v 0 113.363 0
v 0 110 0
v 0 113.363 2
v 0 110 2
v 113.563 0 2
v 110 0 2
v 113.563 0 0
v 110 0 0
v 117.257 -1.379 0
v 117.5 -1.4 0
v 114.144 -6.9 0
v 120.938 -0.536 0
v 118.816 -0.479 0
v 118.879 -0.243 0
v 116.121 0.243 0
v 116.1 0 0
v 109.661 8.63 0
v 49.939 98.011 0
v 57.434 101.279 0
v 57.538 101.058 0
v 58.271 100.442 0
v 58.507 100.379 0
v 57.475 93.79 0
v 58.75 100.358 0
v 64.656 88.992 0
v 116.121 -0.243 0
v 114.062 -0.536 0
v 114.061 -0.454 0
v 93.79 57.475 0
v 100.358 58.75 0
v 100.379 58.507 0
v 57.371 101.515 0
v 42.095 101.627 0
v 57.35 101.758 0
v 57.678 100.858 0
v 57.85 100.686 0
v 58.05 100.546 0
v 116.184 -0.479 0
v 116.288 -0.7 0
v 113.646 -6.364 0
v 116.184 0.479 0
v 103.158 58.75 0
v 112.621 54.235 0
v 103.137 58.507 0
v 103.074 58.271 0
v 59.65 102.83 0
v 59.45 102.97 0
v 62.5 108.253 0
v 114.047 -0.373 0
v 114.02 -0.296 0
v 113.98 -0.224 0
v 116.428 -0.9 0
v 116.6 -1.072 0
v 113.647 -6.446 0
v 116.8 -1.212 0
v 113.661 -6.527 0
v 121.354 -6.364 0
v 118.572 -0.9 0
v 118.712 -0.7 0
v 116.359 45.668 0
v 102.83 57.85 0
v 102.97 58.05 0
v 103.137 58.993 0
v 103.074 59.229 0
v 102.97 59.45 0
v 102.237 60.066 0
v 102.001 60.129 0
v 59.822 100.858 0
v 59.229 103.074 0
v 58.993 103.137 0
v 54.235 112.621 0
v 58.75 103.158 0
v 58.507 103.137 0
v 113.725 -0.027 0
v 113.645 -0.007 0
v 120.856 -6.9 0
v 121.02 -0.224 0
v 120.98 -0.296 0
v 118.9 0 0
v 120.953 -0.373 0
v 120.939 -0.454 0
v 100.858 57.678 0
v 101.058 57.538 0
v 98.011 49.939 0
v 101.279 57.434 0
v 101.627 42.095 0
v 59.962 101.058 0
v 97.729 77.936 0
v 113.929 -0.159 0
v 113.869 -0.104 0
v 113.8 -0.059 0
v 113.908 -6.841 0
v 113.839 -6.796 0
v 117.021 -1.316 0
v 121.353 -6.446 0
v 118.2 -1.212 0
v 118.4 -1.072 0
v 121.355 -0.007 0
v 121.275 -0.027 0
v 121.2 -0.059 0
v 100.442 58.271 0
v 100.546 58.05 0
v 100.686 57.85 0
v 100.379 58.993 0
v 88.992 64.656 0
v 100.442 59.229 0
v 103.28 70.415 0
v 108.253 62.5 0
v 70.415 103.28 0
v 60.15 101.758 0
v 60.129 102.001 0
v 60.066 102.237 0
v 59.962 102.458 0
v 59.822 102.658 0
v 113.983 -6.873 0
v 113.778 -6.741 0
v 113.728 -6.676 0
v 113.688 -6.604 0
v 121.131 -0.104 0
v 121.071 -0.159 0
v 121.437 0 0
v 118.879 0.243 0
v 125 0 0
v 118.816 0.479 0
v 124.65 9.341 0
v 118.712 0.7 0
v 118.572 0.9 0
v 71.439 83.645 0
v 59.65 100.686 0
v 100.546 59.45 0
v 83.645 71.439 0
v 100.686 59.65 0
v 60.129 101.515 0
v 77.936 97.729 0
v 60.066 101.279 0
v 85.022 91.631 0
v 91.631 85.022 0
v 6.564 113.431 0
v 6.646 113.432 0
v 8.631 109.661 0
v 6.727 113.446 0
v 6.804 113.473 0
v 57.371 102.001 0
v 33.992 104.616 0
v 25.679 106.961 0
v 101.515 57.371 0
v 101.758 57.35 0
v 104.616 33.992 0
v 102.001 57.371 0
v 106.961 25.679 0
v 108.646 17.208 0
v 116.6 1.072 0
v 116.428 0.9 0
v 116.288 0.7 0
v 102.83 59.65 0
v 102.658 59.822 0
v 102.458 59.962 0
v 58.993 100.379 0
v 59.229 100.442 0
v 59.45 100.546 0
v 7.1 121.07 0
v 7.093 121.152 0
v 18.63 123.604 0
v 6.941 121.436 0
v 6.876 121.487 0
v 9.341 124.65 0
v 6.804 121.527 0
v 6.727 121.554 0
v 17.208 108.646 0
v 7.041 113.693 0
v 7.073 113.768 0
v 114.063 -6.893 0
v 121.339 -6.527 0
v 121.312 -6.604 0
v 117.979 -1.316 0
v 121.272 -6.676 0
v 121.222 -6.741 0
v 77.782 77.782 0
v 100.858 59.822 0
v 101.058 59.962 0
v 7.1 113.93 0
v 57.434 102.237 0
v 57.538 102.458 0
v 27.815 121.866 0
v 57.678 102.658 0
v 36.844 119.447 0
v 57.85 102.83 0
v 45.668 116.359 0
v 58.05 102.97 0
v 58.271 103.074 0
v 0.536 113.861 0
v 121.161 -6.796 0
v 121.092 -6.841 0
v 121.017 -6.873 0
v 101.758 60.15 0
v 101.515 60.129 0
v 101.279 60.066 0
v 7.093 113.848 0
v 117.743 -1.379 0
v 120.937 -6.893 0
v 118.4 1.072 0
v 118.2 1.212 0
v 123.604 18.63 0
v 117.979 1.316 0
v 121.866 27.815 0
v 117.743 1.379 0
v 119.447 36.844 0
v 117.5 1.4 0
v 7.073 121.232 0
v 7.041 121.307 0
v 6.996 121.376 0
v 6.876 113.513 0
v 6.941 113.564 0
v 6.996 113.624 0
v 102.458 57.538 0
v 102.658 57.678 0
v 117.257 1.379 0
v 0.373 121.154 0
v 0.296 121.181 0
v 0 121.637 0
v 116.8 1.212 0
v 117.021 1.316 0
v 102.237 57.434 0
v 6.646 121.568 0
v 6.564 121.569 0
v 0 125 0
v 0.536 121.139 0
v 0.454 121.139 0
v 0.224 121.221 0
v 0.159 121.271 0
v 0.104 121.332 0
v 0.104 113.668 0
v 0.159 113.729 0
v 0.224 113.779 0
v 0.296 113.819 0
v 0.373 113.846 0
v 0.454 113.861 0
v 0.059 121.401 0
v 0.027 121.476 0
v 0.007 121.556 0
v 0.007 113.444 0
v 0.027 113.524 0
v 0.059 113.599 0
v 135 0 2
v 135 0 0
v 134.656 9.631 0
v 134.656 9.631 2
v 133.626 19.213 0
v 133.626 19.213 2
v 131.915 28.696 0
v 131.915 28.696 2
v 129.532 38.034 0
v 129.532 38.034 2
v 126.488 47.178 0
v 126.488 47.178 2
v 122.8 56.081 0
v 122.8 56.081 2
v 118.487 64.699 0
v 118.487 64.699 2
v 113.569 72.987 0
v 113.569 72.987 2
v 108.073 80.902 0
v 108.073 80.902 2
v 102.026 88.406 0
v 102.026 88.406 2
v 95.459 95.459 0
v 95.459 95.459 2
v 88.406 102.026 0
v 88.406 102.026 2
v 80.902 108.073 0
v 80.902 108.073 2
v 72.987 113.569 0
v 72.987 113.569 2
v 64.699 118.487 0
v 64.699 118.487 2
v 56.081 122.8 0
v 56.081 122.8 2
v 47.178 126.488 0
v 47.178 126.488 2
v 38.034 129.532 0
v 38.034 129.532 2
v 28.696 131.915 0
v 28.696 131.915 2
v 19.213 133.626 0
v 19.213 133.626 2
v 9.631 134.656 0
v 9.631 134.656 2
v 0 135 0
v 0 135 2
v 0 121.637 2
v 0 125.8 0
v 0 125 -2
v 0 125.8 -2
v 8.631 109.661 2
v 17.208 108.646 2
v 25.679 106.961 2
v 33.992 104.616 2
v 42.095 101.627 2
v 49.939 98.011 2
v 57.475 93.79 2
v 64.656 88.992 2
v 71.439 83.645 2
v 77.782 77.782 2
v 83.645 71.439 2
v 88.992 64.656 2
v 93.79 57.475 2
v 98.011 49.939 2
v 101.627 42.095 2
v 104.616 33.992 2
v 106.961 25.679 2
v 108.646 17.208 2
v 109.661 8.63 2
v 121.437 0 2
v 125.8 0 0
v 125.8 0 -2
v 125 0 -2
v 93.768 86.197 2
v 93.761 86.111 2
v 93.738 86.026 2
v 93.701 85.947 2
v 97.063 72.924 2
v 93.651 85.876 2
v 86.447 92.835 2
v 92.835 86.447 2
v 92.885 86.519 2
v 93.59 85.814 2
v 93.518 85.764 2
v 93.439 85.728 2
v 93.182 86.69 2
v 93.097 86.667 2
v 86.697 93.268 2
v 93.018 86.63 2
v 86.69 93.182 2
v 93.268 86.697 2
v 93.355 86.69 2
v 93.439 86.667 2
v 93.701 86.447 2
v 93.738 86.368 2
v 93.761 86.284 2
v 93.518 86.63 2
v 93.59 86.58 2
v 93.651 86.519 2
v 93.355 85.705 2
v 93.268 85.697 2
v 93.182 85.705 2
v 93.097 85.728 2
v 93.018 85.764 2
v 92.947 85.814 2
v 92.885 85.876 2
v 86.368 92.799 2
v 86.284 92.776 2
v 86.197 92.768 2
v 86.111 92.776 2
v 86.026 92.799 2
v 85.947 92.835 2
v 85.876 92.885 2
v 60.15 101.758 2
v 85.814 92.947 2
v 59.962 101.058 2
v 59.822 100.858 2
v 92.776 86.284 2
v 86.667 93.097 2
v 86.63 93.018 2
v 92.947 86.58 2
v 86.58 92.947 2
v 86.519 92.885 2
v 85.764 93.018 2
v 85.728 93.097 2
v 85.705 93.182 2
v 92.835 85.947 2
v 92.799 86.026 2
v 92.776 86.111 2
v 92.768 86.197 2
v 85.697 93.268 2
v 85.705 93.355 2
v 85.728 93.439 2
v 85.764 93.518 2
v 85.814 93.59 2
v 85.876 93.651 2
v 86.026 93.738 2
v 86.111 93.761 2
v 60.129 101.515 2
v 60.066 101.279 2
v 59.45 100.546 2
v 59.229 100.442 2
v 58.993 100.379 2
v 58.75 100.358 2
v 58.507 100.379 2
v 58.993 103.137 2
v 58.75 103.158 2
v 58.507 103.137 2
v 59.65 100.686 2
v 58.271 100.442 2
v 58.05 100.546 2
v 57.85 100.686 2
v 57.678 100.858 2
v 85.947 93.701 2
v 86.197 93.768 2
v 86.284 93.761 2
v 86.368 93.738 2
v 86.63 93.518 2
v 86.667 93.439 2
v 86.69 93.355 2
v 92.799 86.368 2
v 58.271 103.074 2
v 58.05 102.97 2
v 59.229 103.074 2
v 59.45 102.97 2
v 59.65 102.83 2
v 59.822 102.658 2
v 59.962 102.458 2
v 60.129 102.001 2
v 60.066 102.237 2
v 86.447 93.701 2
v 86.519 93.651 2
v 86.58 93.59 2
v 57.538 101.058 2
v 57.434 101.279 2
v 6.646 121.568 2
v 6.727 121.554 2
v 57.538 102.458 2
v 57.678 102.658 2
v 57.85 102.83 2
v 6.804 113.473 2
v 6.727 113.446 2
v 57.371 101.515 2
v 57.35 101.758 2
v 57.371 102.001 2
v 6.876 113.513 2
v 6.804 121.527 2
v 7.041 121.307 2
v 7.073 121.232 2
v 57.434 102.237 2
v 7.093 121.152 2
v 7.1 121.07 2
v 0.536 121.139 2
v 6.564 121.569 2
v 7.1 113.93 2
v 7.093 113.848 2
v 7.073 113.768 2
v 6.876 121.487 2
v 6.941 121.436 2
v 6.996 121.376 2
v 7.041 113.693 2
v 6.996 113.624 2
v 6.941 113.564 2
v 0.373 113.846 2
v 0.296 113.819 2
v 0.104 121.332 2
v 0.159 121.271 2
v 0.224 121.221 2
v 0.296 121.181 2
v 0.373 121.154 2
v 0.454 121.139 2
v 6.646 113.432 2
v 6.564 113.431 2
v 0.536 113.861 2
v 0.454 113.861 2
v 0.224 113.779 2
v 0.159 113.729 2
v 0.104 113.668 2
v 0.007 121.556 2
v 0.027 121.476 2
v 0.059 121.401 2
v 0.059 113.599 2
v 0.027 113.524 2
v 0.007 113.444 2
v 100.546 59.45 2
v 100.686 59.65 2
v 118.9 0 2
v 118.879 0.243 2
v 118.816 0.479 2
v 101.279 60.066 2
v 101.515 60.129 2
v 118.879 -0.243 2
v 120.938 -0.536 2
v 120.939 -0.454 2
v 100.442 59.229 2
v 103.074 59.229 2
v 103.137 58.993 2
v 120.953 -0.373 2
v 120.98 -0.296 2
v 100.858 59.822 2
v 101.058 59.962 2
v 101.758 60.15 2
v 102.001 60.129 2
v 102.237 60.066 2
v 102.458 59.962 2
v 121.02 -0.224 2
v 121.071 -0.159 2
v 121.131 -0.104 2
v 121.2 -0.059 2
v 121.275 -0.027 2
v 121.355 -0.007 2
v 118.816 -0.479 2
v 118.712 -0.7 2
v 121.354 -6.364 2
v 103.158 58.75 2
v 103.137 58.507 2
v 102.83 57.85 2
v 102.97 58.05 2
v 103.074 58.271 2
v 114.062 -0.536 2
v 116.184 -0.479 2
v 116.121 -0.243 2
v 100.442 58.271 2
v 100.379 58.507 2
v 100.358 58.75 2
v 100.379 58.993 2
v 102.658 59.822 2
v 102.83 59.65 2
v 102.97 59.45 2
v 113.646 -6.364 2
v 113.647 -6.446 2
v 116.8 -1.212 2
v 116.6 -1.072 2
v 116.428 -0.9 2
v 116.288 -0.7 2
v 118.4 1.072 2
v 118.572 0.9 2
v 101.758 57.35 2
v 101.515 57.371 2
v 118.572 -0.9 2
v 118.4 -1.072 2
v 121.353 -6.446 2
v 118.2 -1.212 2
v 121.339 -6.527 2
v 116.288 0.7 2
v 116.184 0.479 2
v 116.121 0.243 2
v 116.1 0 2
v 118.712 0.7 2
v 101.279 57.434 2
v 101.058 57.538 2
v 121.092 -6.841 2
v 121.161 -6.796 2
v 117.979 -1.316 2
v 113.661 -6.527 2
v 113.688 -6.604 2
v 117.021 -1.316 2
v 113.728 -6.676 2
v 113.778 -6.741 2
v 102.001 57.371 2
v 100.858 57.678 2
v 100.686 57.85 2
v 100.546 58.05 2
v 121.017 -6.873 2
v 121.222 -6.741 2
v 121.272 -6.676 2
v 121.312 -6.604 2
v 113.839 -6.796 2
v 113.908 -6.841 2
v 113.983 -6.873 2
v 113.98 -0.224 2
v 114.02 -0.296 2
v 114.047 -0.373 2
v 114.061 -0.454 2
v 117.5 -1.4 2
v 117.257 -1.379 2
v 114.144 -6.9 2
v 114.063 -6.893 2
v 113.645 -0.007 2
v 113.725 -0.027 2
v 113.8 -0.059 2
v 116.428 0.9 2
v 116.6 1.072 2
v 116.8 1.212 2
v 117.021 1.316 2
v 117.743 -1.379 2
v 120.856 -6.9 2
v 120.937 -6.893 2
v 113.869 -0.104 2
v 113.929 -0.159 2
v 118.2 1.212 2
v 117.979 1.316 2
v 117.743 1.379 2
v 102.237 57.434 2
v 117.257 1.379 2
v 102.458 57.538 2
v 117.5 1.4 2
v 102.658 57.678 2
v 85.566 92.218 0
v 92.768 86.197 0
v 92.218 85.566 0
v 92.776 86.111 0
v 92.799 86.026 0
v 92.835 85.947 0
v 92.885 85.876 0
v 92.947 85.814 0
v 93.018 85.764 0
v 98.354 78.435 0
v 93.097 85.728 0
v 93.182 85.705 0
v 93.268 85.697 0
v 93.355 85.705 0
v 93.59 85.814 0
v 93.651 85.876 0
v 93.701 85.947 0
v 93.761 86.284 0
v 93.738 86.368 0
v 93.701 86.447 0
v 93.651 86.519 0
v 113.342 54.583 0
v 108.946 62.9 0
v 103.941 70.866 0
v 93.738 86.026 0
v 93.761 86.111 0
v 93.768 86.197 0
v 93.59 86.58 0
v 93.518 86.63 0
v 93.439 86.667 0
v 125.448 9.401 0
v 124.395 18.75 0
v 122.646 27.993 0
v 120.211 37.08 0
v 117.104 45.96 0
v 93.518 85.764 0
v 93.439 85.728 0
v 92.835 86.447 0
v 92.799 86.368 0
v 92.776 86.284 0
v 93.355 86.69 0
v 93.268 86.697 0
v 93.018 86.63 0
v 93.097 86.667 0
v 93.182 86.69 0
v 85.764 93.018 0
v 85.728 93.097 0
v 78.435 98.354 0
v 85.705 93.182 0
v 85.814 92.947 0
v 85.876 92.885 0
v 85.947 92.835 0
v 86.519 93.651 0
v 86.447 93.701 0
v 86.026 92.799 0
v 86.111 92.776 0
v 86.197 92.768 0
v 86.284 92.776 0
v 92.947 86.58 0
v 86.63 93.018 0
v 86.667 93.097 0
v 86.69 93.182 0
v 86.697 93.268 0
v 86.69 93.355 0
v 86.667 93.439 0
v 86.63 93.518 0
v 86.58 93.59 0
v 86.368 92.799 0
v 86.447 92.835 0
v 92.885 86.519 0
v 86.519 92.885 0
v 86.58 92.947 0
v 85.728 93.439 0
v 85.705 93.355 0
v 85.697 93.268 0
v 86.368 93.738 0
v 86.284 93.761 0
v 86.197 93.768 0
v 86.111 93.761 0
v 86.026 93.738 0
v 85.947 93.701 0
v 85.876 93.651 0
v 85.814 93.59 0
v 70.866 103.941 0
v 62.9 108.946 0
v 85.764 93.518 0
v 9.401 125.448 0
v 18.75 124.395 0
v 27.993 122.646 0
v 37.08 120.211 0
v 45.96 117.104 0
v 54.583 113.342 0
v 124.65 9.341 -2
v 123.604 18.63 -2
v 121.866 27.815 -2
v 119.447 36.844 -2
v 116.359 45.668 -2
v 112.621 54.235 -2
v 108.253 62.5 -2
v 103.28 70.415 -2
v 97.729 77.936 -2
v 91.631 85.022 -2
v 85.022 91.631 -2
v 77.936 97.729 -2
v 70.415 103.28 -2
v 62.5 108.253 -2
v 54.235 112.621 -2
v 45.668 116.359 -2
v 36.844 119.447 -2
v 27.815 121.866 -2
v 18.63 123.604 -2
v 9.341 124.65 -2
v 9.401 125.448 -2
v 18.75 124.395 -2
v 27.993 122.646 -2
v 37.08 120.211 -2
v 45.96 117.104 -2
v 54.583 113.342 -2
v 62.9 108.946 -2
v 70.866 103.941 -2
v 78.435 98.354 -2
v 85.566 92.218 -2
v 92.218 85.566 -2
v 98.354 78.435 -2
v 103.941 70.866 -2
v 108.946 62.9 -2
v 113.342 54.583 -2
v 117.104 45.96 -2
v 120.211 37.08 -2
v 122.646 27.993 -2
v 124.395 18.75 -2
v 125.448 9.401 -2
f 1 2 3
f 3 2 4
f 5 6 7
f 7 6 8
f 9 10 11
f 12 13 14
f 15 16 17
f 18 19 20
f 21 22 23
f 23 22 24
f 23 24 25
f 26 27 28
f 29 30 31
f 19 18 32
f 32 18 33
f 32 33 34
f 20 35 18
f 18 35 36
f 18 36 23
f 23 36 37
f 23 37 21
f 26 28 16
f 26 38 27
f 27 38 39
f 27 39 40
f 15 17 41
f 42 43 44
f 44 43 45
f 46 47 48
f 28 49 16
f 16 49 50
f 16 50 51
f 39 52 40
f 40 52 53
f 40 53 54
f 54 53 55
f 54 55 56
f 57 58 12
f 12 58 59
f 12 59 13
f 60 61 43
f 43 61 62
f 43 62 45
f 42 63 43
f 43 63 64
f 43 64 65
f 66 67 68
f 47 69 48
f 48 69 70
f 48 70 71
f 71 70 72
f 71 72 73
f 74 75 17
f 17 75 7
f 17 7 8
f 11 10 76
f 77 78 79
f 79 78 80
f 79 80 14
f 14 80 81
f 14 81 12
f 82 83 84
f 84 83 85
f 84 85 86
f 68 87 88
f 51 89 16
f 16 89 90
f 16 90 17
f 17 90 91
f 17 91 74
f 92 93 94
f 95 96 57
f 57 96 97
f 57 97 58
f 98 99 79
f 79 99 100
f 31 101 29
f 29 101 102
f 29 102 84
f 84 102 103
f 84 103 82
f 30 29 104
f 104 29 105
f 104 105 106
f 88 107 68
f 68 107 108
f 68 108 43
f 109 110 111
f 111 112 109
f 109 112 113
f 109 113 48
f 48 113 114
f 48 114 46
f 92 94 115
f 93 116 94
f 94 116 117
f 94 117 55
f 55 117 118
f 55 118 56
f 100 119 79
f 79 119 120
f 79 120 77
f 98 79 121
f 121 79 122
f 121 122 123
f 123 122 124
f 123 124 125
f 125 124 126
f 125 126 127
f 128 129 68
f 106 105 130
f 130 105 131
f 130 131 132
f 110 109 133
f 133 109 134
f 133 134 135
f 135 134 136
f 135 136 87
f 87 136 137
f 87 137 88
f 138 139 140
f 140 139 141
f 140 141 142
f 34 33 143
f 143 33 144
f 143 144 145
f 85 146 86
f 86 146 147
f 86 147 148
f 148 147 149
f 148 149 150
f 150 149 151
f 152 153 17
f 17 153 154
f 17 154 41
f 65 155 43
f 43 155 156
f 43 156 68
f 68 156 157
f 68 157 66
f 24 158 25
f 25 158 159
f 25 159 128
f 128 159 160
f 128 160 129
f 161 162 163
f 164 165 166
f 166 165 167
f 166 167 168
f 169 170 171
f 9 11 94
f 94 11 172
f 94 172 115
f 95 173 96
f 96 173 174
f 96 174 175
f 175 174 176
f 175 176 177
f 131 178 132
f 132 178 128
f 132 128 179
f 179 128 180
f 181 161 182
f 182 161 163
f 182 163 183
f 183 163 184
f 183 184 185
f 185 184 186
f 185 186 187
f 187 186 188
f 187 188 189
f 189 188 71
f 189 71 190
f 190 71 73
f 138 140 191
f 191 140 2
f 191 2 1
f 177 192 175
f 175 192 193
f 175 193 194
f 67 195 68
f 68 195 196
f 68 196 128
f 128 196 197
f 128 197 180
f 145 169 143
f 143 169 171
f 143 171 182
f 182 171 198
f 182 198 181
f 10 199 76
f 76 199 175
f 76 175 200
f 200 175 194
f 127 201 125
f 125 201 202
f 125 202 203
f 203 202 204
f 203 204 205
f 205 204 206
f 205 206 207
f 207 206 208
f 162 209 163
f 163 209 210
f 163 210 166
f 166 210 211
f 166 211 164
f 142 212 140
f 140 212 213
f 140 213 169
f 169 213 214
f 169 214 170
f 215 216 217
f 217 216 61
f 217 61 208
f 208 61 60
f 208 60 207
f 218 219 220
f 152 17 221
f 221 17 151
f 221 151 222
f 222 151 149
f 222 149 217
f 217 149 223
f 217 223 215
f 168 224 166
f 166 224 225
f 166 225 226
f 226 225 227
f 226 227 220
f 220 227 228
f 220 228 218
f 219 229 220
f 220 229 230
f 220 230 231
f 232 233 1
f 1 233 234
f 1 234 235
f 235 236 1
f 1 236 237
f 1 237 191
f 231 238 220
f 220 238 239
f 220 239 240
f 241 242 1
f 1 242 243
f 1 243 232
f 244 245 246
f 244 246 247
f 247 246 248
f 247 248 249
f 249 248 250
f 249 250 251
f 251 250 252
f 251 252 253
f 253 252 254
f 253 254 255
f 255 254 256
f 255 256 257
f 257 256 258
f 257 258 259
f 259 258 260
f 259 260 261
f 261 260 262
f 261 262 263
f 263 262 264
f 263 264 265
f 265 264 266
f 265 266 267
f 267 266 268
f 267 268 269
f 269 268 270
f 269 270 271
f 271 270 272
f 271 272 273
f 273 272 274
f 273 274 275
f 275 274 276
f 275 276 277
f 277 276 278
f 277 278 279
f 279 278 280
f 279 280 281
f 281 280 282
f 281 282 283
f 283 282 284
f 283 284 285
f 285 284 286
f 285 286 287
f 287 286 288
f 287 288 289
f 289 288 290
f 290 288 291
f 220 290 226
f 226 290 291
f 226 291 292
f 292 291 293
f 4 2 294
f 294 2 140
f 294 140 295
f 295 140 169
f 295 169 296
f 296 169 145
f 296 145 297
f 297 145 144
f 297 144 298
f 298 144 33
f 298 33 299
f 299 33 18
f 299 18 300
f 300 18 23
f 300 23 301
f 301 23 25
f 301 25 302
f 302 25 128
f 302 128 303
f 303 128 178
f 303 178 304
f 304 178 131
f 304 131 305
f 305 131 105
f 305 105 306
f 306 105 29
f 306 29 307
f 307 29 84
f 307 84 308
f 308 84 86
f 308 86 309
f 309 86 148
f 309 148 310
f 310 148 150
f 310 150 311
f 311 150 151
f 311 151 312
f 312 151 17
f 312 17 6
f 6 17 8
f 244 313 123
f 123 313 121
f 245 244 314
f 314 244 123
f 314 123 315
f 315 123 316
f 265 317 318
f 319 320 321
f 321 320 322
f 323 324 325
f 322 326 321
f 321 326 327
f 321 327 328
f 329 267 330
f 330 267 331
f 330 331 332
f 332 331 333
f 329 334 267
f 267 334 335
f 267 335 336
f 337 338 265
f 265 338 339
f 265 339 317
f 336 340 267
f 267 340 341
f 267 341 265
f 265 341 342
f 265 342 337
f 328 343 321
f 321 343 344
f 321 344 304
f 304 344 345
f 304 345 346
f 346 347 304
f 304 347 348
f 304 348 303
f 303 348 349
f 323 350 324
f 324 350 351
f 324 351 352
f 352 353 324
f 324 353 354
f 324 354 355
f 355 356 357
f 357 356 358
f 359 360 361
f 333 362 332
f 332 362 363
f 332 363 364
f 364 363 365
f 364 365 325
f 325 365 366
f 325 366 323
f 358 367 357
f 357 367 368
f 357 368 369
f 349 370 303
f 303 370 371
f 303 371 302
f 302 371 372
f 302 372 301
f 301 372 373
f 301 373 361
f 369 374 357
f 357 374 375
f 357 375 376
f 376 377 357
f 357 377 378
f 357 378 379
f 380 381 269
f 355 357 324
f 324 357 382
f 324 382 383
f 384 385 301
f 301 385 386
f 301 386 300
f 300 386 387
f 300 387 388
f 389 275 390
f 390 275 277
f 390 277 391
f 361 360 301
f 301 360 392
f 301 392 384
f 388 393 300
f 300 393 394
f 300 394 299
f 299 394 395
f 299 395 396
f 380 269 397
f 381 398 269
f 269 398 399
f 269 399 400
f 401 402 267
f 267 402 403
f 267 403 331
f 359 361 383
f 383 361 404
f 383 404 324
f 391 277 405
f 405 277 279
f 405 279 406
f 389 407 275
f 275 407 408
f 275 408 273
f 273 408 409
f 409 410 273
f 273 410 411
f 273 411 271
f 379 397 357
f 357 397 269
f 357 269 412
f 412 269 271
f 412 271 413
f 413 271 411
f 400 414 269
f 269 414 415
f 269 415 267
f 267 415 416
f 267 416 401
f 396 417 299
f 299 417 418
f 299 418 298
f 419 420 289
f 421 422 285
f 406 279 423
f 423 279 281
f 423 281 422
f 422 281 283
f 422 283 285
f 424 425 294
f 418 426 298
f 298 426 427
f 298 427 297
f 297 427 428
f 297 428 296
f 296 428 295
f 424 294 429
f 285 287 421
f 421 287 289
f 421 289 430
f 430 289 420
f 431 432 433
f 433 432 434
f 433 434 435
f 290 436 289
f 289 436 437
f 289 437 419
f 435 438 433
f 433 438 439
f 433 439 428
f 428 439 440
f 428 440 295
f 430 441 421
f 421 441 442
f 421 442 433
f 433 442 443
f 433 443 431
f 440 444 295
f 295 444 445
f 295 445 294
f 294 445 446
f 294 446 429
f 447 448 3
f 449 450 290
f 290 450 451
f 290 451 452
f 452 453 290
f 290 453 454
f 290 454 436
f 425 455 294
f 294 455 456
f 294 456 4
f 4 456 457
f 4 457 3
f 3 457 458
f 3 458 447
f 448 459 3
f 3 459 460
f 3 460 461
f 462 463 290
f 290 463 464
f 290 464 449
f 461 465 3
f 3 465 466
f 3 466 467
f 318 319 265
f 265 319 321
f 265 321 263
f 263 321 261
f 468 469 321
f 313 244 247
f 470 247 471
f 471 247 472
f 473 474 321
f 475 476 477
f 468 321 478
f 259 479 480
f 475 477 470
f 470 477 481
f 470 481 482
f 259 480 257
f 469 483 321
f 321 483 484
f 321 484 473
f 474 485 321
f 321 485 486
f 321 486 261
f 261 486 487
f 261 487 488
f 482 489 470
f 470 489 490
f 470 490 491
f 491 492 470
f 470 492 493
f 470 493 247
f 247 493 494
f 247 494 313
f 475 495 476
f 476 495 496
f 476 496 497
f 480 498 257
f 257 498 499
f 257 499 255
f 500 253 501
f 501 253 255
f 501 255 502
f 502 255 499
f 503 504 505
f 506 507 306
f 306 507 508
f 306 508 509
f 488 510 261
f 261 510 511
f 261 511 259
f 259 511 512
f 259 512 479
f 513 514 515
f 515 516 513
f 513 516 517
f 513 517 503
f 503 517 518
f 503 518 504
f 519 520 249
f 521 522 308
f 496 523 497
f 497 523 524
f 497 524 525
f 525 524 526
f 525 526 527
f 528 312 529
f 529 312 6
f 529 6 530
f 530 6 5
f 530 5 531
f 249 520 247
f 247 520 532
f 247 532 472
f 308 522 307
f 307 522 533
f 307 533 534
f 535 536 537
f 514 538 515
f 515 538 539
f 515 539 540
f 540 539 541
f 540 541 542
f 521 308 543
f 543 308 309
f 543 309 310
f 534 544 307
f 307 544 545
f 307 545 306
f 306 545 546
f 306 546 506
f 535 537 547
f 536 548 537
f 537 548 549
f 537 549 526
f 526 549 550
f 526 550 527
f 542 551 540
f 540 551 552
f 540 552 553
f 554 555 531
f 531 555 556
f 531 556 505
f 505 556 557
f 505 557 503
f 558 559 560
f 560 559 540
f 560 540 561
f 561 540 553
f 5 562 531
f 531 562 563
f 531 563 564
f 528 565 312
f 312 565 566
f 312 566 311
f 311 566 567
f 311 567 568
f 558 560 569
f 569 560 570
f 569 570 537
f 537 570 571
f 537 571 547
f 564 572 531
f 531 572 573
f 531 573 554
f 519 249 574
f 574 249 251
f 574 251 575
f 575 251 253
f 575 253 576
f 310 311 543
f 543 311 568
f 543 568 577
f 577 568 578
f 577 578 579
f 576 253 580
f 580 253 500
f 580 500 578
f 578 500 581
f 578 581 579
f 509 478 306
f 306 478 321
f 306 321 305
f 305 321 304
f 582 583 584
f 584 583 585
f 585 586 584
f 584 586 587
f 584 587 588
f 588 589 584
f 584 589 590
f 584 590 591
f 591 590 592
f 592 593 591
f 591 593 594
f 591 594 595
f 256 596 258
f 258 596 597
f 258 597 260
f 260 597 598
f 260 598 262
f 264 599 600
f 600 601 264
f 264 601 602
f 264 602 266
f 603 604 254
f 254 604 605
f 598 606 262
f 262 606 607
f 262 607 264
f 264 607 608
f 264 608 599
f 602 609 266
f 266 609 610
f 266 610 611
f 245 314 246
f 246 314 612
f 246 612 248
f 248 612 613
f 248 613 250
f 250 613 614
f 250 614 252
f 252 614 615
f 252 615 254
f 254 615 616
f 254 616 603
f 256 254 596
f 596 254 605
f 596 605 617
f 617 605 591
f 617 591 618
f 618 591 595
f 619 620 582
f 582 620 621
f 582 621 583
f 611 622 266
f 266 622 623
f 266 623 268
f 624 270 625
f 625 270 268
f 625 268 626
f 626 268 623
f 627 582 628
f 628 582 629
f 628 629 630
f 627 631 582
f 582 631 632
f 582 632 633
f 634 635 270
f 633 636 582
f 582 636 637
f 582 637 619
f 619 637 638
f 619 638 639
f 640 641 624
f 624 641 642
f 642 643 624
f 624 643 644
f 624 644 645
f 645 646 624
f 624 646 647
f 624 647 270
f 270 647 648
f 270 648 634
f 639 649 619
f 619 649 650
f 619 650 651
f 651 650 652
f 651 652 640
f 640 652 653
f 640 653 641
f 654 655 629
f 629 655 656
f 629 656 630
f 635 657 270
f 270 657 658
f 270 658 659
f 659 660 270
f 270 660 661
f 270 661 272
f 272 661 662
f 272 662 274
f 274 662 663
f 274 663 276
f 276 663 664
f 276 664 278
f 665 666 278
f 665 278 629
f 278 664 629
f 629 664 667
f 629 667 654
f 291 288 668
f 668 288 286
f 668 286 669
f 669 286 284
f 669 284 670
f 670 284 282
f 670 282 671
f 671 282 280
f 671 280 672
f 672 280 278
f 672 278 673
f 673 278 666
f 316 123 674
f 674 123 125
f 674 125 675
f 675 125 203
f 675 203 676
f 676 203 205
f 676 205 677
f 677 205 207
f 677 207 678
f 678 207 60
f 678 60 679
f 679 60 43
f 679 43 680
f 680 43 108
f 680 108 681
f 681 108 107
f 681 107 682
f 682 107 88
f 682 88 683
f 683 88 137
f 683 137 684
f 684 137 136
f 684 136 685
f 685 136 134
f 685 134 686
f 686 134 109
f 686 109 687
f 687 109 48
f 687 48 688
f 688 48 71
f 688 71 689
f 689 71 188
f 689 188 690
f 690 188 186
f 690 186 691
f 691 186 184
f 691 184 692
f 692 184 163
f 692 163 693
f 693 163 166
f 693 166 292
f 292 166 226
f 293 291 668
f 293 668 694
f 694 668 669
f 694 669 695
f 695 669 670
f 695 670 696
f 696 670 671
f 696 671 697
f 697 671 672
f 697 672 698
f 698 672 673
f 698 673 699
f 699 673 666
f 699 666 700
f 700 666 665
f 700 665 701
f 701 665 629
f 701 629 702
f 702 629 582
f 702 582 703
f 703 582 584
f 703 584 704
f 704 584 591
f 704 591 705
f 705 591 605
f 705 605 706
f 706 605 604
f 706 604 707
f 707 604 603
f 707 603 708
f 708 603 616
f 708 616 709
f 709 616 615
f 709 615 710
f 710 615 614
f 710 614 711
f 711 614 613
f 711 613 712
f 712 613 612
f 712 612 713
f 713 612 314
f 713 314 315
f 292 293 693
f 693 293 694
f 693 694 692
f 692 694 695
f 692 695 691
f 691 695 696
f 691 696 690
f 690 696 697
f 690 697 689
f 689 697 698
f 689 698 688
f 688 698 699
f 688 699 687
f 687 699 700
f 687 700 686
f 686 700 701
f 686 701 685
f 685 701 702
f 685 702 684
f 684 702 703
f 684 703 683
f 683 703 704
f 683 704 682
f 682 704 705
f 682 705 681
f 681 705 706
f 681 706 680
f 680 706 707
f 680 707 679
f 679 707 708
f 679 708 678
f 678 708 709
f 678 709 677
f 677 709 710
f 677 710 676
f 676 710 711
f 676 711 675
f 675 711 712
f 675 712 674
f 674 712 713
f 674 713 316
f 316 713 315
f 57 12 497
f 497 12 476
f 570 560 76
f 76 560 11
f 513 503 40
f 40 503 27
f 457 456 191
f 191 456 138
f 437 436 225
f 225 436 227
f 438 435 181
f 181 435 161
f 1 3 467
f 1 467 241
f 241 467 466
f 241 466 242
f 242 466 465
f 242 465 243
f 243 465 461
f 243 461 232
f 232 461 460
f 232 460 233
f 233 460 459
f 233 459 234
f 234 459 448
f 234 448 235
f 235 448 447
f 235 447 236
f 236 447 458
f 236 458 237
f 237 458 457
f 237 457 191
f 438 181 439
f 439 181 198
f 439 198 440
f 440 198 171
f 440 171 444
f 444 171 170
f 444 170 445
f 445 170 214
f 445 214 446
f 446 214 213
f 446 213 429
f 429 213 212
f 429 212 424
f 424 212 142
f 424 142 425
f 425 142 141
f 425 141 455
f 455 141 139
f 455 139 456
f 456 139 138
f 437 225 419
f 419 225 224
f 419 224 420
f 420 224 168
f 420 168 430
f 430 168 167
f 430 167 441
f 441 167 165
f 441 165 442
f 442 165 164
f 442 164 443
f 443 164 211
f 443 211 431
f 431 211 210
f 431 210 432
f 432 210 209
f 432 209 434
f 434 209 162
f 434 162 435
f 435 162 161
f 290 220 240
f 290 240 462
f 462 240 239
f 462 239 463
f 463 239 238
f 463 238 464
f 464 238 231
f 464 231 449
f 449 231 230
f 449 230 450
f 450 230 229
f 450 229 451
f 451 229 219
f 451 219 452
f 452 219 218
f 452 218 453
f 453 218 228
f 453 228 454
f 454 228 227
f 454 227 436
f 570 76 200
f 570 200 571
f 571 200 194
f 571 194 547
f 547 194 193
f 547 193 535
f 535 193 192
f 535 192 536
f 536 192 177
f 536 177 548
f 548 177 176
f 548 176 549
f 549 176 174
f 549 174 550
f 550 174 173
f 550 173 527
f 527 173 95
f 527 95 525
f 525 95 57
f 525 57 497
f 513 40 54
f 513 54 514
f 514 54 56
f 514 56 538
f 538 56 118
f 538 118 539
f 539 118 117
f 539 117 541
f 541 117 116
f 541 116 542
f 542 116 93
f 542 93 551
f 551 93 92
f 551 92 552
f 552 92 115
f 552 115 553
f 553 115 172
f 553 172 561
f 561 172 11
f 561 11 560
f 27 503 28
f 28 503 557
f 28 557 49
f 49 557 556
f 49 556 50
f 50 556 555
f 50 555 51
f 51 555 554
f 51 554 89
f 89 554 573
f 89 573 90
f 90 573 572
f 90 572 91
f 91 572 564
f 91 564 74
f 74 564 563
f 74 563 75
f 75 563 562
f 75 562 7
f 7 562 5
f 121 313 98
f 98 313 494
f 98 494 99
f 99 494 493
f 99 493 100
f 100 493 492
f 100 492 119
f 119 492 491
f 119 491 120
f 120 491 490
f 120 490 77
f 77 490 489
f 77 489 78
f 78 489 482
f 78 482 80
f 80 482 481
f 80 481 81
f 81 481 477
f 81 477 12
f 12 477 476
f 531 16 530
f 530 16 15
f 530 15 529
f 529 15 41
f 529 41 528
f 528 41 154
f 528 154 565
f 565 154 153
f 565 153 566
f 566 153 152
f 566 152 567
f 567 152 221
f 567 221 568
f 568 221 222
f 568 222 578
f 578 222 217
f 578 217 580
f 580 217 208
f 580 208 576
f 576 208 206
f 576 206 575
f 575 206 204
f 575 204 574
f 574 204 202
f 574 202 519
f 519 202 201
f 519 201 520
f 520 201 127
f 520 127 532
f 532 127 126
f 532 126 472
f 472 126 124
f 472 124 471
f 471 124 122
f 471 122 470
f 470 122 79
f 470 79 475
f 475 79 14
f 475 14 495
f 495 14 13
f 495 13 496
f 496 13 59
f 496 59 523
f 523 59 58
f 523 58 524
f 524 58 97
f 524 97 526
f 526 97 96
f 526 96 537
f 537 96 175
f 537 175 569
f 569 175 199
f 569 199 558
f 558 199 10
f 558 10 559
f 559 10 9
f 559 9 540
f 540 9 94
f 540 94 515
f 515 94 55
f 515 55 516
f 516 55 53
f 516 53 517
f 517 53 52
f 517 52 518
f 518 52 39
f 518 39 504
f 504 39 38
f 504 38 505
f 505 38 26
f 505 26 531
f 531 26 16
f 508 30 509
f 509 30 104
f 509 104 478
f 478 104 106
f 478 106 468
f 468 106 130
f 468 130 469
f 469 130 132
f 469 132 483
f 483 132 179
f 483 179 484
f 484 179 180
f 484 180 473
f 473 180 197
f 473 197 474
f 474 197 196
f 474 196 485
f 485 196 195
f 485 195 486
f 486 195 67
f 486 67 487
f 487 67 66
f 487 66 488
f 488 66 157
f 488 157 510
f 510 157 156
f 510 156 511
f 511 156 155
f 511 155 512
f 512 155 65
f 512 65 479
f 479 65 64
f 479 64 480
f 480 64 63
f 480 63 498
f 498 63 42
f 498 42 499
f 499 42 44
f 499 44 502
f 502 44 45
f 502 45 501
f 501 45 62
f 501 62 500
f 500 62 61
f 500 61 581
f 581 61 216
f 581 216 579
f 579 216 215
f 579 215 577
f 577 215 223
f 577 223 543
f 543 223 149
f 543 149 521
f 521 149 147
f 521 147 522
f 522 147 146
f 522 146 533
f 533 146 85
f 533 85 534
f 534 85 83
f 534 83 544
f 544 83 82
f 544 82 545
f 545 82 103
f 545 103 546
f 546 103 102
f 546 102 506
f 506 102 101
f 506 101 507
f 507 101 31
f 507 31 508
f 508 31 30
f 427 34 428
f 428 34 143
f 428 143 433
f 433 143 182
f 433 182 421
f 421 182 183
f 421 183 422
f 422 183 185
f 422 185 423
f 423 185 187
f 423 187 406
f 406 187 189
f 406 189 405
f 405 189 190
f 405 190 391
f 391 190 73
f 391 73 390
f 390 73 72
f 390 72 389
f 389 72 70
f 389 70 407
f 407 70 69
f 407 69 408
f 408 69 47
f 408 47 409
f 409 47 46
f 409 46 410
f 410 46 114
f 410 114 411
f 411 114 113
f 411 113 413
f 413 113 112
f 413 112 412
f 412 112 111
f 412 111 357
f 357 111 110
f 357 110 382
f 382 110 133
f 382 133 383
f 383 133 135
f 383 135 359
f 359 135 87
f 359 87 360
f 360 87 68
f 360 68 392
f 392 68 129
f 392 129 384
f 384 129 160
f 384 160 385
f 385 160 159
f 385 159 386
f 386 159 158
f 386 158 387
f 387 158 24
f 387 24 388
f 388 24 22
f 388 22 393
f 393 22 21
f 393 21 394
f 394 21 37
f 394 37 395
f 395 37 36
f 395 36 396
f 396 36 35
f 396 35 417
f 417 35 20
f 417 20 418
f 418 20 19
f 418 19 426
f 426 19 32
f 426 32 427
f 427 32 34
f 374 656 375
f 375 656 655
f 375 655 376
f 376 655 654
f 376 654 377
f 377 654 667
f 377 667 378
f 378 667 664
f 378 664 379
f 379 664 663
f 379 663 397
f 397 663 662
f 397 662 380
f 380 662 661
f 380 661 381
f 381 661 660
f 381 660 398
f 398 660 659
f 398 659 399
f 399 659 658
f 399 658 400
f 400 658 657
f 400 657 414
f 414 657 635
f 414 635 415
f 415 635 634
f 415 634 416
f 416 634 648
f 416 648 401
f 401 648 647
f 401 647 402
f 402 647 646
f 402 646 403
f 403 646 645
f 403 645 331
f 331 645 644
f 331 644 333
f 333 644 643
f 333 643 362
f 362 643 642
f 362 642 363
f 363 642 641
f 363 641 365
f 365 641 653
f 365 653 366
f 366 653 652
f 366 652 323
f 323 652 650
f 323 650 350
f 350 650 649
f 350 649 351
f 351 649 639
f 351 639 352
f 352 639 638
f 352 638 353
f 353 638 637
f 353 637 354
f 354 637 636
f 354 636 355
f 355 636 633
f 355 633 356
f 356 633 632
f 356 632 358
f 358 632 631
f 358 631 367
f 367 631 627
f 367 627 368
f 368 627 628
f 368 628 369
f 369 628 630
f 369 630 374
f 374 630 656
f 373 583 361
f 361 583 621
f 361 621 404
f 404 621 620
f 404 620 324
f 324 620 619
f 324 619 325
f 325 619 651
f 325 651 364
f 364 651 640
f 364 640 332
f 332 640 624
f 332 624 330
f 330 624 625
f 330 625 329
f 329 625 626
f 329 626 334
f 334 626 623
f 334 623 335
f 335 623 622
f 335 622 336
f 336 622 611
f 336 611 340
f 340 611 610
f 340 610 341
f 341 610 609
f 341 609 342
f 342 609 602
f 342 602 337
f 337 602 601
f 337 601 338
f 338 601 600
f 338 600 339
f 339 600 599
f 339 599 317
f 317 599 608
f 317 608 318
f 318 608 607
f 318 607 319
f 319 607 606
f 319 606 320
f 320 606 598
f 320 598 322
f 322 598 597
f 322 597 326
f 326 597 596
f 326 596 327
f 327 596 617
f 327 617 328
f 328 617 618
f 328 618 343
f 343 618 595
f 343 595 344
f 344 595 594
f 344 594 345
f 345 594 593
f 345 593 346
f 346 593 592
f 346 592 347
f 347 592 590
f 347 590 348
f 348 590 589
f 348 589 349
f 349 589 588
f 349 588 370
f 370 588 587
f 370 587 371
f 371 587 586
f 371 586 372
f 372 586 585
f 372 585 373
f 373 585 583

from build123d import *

# Parameters (mm, degrees)
BOSS_EXTRUDE1_DEPTH = 2
BOSS_EXTRUDE2_DEPTH = 2
BOSS_EXTRUDE3_DEPTH = 2
CUT_EXTRUDE1_REACH  = 192.961
FILLET1_R           = 0.5
CUT_EXTRUDE3_REACH  = 192.929
SKETCH4_R           = 1.4
CUT_EXTRUDE4_REACH  = 192.929
SKETCH9_R           = 0.5


with BuildPart() as part:
    # Sketch2 → Boss-Extrude1 (new body)
    with BuildSketch(Plane.XY):
        with BuildLine():
            Line((0, 135), (0, 110))
            ThreePointArc((0, 110), (77.781745931, 77.781745931), (110, 0))
            Line((110, 0), (135, 0))
            ThreePointArc((135, 0), (95.45941546, 95.45941546), (0, 135))
        make_face()
    extrude(amount=BOSS_EXTRUDE1_DEPTH)

    # Sketch3 → Boss-Extrude2 (add)
    with BuildSketch(Plane(origin=(0, 0, 0), x_dir=(-1, 0, 0), z_dir=(0, 0, -1))):
        with BuildLine():
            Line((0, 125.8), (0, 125))
            ThreePointArc((0, 125), (-88.388347648, 88.388347648), (-125, 0))
            Line((-125, 0), (-125.8, 0))
            ThreePointArc((-125.8, 0), (-88.954033073, 88.954033073), (0, 125.8))
        make_face()
    extrude(amount=BOSS_EXTRUDE2_DEPTH)

    # Sketch7 → Boss-Extrude3 (add)
    with BuildSketch(Plane.XY):
        Polygon((114.100254777, 0), (120.899745223, 0), (121.392602365, -6.9), (113.607397635, -6.9), align=None)
    extrude(amount=BOSS_EXTRUDE3_DEPTH)

    # Sketch8 → Cut-Extrude1 (cut, up to next)
    with BuildSketch(Plane.XY.offset(2), mode=Mode.PRIVATE) as cut_extrude1_sk1:
        Polygon((-0.007124705, 121.09974587), (-0.007124705, 113.90025413), (7.1, 113.392602365), (7.1, 121.607397635), align=None)
    cut_extrude1_tool1 = extrude(cut_extrude1_sk1.sketch, amount=-CUT_EXTRUDE1_REACH, mode=Mode.PRIVATE) & part.part
    add(cut_extrude1_tool1.solids().sort_by_distance((3.624459, 117.5, 2))[0], mode=Mode.SUBTRACT)

    # Fillet1
    fillet1_edges = [part.edges().sort_by_distance(p)[0] for p in [
        (120.899745223, 0, 1),
        (121.392602365, -6.9, 1),
        (113.607397635, -6.9, 1),
        (114.100254777, 0, 1),
        (0, 113.899745223, 1),
        (0, 121.100254777, 1),
        (7.1, 113.392602365, 1),
        (7.1, 121.607397635, 1),
    ]]
    fillet(fillet1_edges, radius=FILLET1_R)

    # Sketch4 → Cut-Extrude3 (cut, up to next)
    with BuildSketch(Plane.XY, mode=Mode.PRIVATE) as cut_extrude3_sk1:
        with Locations(Location((58.75, 101.757984945, 0), (0, 0, 180))):
            Circle(SKETCH4_R)
    cut_extrude3_tool1 = extrude(cut_extrude3_sk1.sketch, amount=CUT_EXTRUDE3_REACH, mode=Mode.PRIVATE) & part.part
    # Sketch4 → Cut-Extrude3 (cut, up to next)
    with BuildSketch(Plane.XY, mode=Mode.PRIVATE) as cut_extrude3_sk2:
        with Locations(Location((101.757984945, 58.75, 0), (0, 0, 180))):
            Circle(SKETCH4_R)
    cut_extrude3_tool2 = extrude(cut_extrude3_sk2.sketch, amount=CUT_EXTRUDE3_REACH, mode=Mode.PRIVATE) & part.part
    # Sketch4 → Cut-Extrude3 (cut, up to next)
    with BuildSketch(Plane.XY, mode=Mode.PRIVATE) as cut_extrude3_sk3:
        with Locations(Location((117.5, 0, 0), (0, 0, 180))):
            Circle(SKETCH4_R)
    cut_extrude3_tool3 = extrude(cut_extrude3_sk3.sketch, amount=CUT_EXTRUDE3_REACH, mode=Mode.PRIVATE) & part.part
    add(cut_extrude3_tool1.solids().sort_by_distance((58.75, 101.757985, 0))[0], mode=Mode.SUBTRACT)
    add(cut_extrude3_tool2.solids().sort_by_distance((101.757985, 58.75, 0))[0], mode=Mode.SUBTRACT)
    add(cut_extrude3_tool3.solids().sort_by_distance((117.5, 0, 0))[0], mode=Mode.SUBTRACT)

    # Sketch9 → Cut-Extrude4 (cut, up to next)
    with BuildSketch(Plane(origin=(0, 0, 0), x_dir=(-1, 0, 0), z_dir=(0, 0, -1)), mode=Mode.PRIVATE) as cut_extrude4_sk1:
        with Locations((-93.268471003, 86.197403191)):
            Circle(SKETCH9_R)
    cut_extrude4_tool1 = extrude(cut_extrude4_sk1.sketch, amount=-CUT_EXTRUDE4_REACH, mode=Mode.PRIVATE) & part.part
    # Sketch9 → Cut-Extrude4 (cut, up to next)
    with BuildSketch(Plane(origin=(0, 0, 0), x_dir=(-1, 0, 0), z_dir=(0, 0, -1)), mode=Mode.PRIVATE) as cut_extrude4_sk2:
        with Locations((-86.197403191, 93.268471003)):
            Circle(SKETCH9_R)
    cut_extrude4_tool2 = extrude(cut_extrude4_sk2.sketch, amount=-CUT_EXTRUDE4_REACH, mode=Mode.PRIVATE) & part.part
    add(cut_extrude4_tool1.solids().sort_by_distance((93.268471, 86.197403, 0))[0], mode=Mode.SUBTRACT)
    add(cut_extrude4_tool2.solids().sort_by_distance((86.197403, 93.268471, 0))[0], mode=Mode.SUBTRACT)


solid = part.part
